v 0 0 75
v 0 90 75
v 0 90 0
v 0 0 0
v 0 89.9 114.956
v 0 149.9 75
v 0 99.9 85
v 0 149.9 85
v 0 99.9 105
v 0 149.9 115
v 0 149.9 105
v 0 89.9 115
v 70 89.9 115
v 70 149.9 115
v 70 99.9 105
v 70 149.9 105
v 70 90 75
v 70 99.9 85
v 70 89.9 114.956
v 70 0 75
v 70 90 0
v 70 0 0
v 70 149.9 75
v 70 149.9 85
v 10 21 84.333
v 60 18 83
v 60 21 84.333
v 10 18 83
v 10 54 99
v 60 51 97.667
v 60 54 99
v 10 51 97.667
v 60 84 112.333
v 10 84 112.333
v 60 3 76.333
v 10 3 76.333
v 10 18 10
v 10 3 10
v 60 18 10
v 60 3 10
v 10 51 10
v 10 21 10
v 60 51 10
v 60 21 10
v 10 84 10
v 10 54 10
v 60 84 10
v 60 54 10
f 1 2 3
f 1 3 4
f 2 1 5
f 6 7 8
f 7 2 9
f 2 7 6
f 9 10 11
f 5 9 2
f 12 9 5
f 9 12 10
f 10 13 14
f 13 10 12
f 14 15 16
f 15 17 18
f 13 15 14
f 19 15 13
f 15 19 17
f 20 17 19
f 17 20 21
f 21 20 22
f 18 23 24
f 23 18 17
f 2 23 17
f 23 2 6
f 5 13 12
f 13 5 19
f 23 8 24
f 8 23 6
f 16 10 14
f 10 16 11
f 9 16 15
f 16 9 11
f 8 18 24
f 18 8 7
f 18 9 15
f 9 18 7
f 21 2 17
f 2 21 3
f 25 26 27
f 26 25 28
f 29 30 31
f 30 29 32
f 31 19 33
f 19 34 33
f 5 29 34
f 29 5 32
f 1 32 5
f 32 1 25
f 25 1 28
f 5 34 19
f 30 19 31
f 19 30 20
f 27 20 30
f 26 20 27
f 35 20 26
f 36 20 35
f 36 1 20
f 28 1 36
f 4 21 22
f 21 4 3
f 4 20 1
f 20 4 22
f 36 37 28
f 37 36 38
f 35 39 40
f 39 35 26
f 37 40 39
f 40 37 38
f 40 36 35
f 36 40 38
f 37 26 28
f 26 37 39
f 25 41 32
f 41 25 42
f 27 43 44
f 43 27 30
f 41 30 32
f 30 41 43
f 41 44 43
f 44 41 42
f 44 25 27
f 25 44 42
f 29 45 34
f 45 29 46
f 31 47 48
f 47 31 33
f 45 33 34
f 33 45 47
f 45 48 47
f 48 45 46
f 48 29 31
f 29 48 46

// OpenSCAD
$fn=60;

DeskHeight = 20;
ClipWall = 10;

Width = 75;

module DeskClip() {
    translate([35, 30, (DeskHeight + ClipWall * 2)/2])
        difference() {
            cube([70, 60, DeskHeight + ClipWall * 2], center=true);
            translate([0, ClipWall, 0])
            cube([75, 60, DeskHeight], center=true);
        }
}

translate([0, 89.9, 75]) DeskClip();


points = [
    [0, 0],
    [0, 90],
    [40, 0]
];

difference() {
    union() {
        translate([0, 90, 75])
            rotate([0, -90, 180])
                linear_extrude(70)
                    polygon(points);
        cube([70, 90, 75]);
    }

    translate([10, 3, 10])
        #cube([50, 15, 100]);
    translate([10, 3*2+15, 10])
        #cube([50, 30, 100]);
    translate([10, 3*3+30 + 15, 10])
        #cube([50, 30, 150]);
}
